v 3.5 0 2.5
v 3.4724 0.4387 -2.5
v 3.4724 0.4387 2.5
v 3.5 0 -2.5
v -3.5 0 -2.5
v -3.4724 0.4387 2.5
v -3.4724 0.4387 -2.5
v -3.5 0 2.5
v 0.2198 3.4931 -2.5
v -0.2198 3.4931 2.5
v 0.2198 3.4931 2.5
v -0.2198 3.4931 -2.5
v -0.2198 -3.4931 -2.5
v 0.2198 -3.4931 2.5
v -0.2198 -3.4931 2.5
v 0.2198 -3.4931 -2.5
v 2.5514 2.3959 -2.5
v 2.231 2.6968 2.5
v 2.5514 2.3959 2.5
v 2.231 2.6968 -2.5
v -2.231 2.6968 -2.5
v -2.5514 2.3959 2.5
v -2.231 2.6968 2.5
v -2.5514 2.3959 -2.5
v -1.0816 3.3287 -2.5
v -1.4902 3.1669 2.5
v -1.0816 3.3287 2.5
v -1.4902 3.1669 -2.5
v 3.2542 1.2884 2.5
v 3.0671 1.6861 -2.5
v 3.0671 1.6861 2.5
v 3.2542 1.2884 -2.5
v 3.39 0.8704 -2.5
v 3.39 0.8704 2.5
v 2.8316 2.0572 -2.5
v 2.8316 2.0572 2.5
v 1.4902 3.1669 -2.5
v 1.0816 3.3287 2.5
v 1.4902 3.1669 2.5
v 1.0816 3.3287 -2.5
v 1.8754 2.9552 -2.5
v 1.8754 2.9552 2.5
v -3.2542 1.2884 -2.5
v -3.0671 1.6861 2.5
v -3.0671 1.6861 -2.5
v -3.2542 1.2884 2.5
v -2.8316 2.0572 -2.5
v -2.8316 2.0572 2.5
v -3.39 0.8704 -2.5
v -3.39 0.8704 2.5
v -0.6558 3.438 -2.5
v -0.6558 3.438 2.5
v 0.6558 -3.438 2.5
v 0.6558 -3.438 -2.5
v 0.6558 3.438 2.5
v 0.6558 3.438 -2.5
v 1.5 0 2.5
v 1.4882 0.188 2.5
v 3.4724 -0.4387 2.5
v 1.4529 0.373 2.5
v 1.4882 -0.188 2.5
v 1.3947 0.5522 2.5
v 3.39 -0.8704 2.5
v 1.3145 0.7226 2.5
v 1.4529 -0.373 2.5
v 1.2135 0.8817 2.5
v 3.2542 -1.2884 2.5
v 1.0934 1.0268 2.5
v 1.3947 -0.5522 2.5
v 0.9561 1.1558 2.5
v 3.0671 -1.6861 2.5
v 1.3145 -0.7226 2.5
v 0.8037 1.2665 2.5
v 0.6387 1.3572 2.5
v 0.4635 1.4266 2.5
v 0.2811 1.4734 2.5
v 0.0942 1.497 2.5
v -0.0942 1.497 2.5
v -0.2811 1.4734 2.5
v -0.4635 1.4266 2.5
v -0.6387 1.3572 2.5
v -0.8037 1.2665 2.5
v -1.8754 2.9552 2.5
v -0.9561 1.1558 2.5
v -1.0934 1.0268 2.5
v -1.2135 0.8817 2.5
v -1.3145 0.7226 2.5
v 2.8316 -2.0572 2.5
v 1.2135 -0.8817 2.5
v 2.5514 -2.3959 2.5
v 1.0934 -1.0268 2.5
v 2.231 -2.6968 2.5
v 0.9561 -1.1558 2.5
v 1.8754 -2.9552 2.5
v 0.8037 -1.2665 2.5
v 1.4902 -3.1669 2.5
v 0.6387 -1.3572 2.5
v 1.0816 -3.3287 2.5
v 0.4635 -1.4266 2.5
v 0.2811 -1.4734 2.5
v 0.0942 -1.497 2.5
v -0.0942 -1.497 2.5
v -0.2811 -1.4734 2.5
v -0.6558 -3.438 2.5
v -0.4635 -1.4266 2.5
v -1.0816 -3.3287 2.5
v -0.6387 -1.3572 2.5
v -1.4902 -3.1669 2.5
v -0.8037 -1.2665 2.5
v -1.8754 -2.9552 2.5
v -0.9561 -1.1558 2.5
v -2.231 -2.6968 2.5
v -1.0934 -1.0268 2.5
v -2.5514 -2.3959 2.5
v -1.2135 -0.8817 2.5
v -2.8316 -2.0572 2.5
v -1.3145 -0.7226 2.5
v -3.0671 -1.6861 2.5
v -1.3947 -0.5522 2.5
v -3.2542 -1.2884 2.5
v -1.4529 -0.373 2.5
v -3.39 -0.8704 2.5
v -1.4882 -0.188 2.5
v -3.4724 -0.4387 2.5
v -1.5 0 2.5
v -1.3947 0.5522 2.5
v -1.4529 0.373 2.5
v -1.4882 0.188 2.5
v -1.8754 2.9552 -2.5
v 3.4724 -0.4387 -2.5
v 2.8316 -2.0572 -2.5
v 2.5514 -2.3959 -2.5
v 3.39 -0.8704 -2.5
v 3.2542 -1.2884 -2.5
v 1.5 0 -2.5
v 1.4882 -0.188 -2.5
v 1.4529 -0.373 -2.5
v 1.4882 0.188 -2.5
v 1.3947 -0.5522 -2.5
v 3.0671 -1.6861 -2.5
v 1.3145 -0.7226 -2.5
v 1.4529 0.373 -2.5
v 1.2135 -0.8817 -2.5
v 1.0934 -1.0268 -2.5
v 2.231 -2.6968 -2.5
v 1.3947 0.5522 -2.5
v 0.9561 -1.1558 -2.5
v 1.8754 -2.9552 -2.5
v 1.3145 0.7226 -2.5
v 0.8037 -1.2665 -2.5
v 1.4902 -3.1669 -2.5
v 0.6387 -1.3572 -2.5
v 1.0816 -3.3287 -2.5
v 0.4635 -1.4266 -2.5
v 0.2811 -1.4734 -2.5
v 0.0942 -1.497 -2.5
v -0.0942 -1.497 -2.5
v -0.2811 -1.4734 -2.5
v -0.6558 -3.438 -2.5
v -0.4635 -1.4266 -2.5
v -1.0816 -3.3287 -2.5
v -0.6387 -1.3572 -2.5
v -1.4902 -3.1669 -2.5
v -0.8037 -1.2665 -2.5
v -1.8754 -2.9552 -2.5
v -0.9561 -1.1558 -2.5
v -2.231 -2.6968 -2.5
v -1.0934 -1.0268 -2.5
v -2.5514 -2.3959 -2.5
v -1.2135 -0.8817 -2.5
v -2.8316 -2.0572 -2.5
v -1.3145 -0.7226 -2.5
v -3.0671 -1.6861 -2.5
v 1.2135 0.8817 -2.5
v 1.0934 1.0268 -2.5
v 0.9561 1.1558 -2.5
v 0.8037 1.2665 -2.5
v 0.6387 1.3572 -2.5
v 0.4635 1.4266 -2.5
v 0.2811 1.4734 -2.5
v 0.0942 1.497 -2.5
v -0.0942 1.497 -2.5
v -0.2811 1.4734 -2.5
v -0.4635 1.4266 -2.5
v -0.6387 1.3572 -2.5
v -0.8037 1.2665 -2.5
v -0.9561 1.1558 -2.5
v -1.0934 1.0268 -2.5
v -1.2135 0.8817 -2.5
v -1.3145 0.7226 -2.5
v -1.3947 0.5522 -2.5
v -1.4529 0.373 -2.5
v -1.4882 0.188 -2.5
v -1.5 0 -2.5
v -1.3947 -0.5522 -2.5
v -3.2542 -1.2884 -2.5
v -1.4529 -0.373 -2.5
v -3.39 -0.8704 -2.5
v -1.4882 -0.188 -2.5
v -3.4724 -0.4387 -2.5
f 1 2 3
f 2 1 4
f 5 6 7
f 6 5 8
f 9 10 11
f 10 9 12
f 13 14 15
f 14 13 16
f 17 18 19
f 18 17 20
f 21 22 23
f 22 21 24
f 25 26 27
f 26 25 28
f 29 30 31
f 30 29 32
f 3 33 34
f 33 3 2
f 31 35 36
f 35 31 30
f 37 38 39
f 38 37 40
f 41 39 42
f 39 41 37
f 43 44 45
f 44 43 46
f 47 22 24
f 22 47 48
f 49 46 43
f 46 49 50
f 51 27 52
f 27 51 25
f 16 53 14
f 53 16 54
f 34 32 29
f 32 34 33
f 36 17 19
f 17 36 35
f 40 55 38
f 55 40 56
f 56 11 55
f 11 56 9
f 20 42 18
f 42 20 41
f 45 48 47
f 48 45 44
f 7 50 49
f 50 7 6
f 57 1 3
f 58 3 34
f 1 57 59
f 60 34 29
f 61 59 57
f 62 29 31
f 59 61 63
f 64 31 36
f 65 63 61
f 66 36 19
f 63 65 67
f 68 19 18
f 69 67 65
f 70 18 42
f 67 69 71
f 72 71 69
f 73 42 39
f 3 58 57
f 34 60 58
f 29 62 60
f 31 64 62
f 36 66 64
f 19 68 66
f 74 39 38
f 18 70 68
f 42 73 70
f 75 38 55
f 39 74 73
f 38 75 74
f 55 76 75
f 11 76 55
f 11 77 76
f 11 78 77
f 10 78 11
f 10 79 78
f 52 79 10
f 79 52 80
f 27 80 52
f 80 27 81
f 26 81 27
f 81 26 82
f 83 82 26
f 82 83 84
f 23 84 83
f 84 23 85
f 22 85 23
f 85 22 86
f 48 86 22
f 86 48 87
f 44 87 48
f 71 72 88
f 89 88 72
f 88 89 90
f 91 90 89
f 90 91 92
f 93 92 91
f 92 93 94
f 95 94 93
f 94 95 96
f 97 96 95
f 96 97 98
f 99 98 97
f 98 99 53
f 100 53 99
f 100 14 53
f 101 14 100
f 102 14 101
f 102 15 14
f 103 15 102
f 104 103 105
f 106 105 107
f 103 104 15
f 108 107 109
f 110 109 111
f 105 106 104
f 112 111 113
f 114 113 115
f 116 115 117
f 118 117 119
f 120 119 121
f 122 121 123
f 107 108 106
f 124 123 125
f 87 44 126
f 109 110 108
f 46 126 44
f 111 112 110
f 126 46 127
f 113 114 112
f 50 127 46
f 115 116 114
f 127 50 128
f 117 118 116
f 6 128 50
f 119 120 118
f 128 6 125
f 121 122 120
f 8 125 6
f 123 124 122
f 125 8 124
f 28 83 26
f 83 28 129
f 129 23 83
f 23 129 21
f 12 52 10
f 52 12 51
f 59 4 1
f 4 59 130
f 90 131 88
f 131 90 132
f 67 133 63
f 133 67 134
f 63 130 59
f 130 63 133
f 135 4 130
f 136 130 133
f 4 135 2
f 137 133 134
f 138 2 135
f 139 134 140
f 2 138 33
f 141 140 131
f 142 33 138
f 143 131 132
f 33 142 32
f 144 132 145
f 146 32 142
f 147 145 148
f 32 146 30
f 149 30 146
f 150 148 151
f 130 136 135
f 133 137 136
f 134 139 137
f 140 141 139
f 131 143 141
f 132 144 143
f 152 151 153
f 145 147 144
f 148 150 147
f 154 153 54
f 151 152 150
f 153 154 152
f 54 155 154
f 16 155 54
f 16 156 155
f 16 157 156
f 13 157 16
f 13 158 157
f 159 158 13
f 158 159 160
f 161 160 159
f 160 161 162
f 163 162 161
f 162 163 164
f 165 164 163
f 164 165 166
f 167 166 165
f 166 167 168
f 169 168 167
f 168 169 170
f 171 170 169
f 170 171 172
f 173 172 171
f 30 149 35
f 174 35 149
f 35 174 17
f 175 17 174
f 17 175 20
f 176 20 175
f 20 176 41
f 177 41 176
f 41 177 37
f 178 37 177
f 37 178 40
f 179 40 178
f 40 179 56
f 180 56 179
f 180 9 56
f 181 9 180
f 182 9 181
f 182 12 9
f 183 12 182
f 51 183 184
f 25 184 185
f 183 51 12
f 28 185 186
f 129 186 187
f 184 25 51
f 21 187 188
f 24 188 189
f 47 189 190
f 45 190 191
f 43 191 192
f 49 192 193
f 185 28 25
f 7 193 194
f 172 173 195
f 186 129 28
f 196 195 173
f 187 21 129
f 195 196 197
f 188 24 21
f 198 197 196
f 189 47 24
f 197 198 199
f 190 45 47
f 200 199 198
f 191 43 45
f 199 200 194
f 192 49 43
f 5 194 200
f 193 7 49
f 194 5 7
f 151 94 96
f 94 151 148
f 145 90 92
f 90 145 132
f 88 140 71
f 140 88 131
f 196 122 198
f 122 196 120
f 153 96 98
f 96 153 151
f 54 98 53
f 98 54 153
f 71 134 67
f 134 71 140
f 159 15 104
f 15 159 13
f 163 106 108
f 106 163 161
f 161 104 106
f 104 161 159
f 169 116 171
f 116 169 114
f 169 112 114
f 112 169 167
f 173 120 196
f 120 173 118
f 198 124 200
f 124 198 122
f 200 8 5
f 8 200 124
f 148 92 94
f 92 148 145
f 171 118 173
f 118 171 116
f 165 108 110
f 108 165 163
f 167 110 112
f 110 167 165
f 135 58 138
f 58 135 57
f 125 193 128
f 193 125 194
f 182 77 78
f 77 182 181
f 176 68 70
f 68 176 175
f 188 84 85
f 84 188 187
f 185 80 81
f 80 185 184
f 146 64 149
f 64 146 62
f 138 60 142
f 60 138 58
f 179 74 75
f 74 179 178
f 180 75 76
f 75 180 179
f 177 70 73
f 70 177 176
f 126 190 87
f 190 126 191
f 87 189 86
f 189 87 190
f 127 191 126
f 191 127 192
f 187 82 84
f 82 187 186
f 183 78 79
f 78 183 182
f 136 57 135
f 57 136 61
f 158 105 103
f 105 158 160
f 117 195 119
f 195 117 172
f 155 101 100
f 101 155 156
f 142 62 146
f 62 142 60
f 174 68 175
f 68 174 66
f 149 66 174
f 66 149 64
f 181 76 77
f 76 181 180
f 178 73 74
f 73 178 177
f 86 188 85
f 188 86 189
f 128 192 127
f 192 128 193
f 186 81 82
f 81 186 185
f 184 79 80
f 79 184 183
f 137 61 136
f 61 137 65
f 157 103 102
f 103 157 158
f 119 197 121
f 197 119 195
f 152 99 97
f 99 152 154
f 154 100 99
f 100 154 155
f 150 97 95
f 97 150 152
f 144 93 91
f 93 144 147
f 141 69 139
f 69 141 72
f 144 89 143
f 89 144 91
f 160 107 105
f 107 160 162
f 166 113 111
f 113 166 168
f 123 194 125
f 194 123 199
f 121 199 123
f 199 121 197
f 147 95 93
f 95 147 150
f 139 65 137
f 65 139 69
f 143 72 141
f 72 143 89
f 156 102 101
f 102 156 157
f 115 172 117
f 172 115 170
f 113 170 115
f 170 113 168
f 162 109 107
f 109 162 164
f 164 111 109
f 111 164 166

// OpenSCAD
$fn = 50;


difference() {
	union() {
		translate(v = [0, 0, -2.5000000000]) {
			cylinder(h = 5, r = 3.5000000000);
		}
	}
	union() {
		translate(v = [0, 0, -100.0000000000]) {
			cylinder(h = 200, r = 1.5000000000);
		}
	}
}
